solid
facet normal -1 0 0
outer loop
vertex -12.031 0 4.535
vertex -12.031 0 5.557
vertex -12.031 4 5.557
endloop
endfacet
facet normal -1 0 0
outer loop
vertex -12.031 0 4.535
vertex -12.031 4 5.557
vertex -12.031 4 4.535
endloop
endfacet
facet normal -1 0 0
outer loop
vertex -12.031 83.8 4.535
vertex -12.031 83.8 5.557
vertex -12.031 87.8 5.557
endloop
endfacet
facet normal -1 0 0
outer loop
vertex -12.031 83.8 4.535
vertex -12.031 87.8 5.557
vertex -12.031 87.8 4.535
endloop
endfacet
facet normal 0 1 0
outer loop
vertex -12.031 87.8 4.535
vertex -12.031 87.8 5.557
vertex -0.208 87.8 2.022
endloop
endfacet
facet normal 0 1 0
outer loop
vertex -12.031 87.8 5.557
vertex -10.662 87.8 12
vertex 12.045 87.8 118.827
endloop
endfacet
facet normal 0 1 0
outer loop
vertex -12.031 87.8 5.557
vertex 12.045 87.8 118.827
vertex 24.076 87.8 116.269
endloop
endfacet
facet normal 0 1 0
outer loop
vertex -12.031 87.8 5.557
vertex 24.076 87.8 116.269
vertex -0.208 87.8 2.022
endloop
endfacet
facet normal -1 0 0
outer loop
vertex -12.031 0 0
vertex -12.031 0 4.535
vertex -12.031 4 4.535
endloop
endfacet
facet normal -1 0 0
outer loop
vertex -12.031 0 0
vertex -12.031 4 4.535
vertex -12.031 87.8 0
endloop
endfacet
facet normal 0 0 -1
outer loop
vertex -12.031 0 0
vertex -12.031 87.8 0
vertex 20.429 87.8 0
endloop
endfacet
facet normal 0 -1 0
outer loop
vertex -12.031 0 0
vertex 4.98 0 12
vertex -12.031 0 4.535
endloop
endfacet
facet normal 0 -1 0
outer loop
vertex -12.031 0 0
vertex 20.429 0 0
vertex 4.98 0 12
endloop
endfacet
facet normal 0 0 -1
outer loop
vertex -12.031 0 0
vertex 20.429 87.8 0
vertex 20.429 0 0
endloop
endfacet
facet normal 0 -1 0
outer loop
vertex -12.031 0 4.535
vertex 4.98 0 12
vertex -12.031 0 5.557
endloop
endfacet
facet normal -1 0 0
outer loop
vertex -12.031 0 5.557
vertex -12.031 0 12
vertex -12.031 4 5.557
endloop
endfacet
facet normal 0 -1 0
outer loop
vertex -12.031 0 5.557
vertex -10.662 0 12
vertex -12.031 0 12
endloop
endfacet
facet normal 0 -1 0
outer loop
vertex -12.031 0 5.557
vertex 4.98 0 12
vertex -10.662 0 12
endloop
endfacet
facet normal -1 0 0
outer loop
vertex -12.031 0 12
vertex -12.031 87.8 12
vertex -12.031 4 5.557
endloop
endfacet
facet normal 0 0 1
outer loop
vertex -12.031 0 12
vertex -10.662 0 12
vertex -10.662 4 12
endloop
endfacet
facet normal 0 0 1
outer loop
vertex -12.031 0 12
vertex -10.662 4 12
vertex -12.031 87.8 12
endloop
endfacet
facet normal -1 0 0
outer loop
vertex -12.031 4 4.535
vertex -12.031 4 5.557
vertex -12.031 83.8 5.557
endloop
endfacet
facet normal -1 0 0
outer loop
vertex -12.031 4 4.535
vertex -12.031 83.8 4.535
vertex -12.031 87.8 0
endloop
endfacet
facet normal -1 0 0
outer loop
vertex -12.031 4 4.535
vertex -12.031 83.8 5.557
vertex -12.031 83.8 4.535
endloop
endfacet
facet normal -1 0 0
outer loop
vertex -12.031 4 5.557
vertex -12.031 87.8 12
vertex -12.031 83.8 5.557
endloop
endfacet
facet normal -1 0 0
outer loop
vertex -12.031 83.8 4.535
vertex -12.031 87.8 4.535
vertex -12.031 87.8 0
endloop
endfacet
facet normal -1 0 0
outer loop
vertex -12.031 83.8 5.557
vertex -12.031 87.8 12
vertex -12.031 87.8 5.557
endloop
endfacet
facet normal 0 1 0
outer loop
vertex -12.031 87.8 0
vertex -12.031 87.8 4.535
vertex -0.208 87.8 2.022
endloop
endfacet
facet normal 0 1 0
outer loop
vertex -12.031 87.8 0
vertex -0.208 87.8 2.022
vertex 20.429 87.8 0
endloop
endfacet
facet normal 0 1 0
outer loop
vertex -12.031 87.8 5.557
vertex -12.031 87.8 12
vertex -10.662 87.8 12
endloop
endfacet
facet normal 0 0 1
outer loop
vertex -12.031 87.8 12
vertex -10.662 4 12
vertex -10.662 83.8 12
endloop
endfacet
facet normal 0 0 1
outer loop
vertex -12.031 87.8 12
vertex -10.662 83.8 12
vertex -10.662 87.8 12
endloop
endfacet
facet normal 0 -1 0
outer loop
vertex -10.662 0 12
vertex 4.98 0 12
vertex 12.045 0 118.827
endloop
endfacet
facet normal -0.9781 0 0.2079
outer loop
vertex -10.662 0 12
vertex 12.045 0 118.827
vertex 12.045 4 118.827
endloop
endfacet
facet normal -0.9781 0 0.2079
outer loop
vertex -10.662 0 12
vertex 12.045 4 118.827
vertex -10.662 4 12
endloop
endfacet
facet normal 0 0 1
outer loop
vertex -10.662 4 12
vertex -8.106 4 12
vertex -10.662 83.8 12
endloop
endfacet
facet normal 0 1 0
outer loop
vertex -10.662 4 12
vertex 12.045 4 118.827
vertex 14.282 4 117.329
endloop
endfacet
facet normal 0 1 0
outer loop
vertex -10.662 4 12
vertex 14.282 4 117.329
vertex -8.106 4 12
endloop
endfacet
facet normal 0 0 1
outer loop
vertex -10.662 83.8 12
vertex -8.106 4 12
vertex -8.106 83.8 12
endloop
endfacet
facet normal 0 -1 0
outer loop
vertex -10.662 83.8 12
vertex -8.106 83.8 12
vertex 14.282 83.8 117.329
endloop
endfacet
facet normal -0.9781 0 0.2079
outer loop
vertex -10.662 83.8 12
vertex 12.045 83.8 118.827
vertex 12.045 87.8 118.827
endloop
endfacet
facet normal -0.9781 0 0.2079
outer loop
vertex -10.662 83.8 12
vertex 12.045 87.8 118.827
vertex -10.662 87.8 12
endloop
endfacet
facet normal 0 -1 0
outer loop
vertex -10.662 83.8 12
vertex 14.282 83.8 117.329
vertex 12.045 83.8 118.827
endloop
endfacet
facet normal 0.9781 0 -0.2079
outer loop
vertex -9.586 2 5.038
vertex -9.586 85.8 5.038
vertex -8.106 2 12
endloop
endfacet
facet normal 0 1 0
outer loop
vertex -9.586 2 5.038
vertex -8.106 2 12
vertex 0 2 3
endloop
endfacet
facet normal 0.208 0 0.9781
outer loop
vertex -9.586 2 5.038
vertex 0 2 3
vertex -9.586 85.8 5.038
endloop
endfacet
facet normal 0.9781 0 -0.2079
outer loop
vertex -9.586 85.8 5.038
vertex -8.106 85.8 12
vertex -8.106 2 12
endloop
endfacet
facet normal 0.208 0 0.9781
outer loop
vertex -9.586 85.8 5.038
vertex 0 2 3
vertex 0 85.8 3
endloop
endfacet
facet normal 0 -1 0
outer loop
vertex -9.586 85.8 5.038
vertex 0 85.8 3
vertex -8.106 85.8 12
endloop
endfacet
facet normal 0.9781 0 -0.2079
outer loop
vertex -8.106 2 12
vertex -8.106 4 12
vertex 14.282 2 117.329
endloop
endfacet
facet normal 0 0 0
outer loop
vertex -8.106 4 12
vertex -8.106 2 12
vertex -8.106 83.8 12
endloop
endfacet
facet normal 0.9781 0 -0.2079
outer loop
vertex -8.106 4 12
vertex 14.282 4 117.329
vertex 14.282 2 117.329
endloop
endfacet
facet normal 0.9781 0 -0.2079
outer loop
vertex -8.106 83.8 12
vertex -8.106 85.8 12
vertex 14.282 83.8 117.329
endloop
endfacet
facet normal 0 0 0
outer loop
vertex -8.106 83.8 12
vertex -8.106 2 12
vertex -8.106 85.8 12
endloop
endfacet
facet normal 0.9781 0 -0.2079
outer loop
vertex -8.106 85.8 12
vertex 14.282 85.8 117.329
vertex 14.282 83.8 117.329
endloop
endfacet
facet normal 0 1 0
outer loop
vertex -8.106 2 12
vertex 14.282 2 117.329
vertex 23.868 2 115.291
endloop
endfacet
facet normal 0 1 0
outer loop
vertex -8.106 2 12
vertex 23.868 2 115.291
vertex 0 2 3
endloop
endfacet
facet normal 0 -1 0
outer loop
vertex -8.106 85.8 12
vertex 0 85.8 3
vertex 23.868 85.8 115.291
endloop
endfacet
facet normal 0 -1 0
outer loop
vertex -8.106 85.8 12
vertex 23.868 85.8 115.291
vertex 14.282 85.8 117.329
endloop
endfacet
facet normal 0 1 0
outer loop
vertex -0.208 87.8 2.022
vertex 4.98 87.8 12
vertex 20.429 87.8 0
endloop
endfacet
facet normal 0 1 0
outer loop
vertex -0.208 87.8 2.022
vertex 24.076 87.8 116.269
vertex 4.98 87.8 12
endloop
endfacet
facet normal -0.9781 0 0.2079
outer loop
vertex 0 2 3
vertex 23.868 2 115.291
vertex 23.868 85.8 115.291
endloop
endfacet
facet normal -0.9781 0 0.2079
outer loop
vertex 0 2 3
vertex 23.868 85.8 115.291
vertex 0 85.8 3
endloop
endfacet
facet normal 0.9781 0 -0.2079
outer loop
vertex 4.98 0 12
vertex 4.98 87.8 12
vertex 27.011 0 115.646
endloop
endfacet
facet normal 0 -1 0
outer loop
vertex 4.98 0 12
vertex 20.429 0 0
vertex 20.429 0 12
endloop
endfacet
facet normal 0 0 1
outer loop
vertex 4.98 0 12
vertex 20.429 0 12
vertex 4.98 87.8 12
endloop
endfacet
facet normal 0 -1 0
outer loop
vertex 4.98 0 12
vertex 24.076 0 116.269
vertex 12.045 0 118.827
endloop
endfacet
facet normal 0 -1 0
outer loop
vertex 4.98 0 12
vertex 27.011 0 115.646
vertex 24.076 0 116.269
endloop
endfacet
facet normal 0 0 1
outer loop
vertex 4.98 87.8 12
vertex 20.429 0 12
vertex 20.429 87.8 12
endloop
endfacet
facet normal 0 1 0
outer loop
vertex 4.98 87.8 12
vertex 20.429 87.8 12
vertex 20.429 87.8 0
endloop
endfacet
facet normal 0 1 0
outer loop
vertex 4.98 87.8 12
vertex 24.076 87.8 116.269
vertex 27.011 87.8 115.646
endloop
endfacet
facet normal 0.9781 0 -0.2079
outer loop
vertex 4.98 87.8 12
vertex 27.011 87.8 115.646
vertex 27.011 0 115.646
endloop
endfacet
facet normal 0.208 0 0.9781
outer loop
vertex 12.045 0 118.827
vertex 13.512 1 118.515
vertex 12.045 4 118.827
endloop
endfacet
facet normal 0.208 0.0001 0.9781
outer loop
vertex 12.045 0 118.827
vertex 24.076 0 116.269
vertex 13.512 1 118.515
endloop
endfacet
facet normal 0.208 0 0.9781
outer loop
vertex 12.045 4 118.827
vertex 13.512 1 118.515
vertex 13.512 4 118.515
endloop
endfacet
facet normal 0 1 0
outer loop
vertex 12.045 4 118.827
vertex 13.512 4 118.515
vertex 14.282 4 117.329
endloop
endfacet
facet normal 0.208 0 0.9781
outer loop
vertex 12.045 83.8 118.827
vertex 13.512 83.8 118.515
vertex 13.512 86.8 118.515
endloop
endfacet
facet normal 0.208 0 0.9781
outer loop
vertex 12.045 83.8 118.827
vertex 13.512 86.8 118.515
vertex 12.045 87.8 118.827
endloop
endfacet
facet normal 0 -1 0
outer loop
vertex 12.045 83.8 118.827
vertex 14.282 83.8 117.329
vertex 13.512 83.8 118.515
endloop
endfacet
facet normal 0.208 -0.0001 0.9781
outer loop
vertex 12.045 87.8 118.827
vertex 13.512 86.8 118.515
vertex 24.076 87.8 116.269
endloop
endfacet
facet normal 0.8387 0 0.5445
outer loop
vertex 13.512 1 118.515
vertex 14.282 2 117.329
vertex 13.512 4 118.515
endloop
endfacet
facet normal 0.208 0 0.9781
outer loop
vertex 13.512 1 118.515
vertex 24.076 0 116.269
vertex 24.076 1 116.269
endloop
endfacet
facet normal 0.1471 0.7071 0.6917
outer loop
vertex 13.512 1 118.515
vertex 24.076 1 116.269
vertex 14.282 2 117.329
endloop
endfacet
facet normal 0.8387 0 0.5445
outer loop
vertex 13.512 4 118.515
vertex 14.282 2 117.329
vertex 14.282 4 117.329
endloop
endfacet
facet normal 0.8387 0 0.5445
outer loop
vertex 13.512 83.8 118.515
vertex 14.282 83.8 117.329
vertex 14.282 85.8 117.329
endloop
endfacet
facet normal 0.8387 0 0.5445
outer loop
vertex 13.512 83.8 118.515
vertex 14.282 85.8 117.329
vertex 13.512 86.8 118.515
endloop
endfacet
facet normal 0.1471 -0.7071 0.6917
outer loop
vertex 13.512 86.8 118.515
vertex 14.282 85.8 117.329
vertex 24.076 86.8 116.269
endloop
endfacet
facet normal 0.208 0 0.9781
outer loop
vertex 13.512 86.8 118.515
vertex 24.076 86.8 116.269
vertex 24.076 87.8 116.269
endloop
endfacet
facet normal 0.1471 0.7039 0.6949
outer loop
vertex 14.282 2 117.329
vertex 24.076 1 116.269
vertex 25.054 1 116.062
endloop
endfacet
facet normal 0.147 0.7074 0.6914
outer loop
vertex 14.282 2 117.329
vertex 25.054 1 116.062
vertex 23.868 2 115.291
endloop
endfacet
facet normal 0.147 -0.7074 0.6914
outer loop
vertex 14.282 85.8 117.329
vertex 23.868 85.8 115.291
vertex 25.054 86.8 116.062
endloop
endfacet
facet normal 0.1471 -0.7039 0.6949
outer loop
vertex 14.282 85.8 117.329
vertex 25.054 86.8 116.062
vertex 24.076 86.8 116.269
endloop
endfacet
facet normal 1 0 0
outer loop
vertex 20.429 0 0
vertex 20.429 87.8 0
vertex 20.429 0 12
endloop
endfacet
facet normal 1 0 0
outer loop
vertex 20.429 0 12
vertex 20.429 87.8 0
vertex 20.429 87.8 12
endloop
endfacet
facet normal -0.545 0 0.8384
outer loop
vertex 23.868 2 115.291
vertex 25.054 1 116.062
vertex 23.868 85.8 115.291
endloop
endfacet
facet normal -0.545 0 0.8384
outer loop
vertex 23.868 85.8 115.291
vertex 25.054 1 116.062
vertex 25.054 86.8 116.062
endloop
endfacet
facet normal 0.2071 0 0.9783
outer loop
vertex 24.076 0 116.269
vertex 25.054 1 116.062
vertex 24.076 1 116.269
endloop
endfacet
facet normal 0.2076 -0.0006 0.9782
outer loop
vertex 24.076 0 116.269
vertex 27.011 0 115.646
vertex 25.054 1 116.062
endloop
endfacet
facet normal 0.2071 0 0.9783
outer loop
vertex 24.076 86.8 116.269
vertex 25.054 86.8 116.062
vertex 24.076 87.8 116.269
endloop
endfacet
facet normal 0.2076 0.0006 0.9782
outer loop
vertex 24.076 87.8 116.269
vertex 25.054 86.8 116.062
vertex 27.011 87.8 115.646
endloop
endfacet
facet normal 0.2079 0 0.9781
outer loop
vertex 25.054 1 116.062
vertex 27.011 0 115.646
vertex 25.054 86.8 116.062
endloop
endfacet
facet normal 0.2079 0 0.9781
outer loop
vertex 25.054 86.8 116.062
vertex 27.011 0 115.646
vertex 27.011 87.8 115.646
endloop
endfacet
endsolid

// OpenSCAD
// bgs-stand-01.scad
// Suporte de mesa pra UMA slab graduada BECKETT (BGS), inclinada pra trás.
// UMA peça só, ABERTA EM CIMA, imprime sem suporte.
//
// COMO SE USA: a slab desce POR CIMA, entre os dois trilhos, e escorrega até
// o fundo do canal. Pra tirar, pinça a faixa de cima da slab que fica acima
// dos trilhos (grip mm) e puxa pra cima. Não há tampa nem trava.
//
// O QUE SEGURA A SLAB (sem tampa):
//   - atrás: o PAINEL. A inclinação de 12° joga o peso da slab contra ele;
//     o centro de massa da slab fica 17.8mm atrás da aresta de baixo/frente,
//     então ela não tomba pra frente nem sem aba nenhuma;
//   - na frente: a ABA dos trilhos, que avança sobre as bordas laterais da
//     face da slab ao longo de toda a altura do trilho (seguro extra contra
//     esbarrão);
//   - dos lados: as paredes dos trilhos;
//   - embaixo: o piso do canal e o LÁBIO frontal da base.
//   Pra cima só a gravidade segura — de propósito, é por onde ela sai.
//
// MEDIDA REAL: slab Beckett remedida pelo usuário em 2026-10-13:
// 82.8 x 130.3 x 8.8 mm (antes: 82.5 x 130.2 x 8.5, paquímetro 2026-08-11).
// Não é estimativa nem catálogo. Pra outra marca (PSA, CGC), medir de novo e
// mexer só em slab_w/slab_h/slab_t — a peça inteira é derivada deles.
//
// DE ONDE VEIO: ../terceiros/display-stand-for-psa-cgc-slab/my-psa-slab.3mf
// (Functional3D, MakerWorld, Standard Digital File License) — arquivo de
// terceiro, sem fonte. Dele veio só o CONCEITO, medido na malha: painel
// inclinado 11.9°, canal na base, canal de slab de 81.0mm. Geometria nova.
//
// Exports canônicos (caminhos ABSOLUTOS; nesta máquina Windows o binário é
// "C:/Program Files/OpenSCAD/openscad.com"; no Linux, flatpak run org.openscad.OpenSCAD):
//   openscad -o <abs>/stl/bgs-stand-01-stand.stl -D 'part="stand"' <abs>/bgs-stand-01.scad
//   openscad -o <abs>/3mf/bgs-stand-01.3mf       -D 'part="stand"' <abs>/bgs-stand-01.scad
// O job de impressão é a própria peça, em pé (base na mesa), sem suporte.

/* [Peça a renderizar] */
part = "stand"; // "stand" | "check" (suporte + slab fantasma)

/* [Slab - medida REAL do usuário, 2026-10-13 (antes 82.5x130.2x8.5 de 2026-08-11)] */
slab_w = 82.8;  // mm, largura
slab_h = 130.3; // mm, altura
slab_t = 8.8;   // mm, espessura

/* [Folgas] */
fit_w = 0.5; // mm por lado, na largura (deslize longo: padrão 0.5/lado do repo)
fit_t = 0.5; // mm por lado, na espessura (idem)
fit_h = 0.5; // mm de sobra no comprimento, no fundo do canal
mouth_ch = 1; // mm, chanfro de entrada na boca do canal (topo dos trilhos e do painel)

/* [Postura] */
lean = 12; // graus de inclinação pra trás (o de referência tinha 11.9)

/* [Painel e trilhos] */
panel_t  = 3;   // mm, espessura do painel de trás
wall     = 2;   // mm, espessura da parede lateral do trilho
rail_lip = 2;   // mm, quanto a aba do trilho avança pra dentro do vão (por lado)
lip_t    = 2.5; // mm, espessura da aba do trilho e do lábio frontal da base
grip     = 15;  // mm do canal (L) que ficam acima dos trilhos e do painel; com a
                // slab assentada no piso sobram slab_livre = 14.5mm dela pra pinçar
rail_sink = 1;  // mm que o pé dos trilhos afunda na base (só fusão, não muda o vão)

/* [Base] */
floor_z   = 3;  // mm, material sólido abaixo do canal
lip_h     = 9;  // mm, altura do lábio frontal acima do piso do canal
base_back = 18; // mm, quanto a base avança atrás do pé do painel (é o que
                // impede o conjunto de cair pra trás — o centro de massa fica
                // atrás do painel por causa da inclinação)

/* [Qualidade] */
$fn = 48;

// ---------------------------------------------------------------------
// Derivados
// ---------------------------------------------------------------------
slot_t  = slab_t + 2 * fit_t; // vão pra espessura da slab
slot_w  = slab_w + 2 * fit_w; // vão pra largura da slab
outer_w = slot_w + 2 * wall;  // largura externa
L       = slab_h + fit_h;     // comprimento útil do canal, ao longo da slab

rail_d       = slot_t + lip_t;  // quanto o trilho avança à frente do painel
top_du       = L - grip;        // trilhos e painel terminam aqui (ao longo da slab)
lip_top      = floor_z + lip_h; // topo do lábio frontal da base

// Referencial da slab -> XZ do mundo.
// du = ao longo da slab (pra cima), dn = pra frente (saindo da face do painel).
// A origem (du=0, dn=0) é o canto de baixo/de trás do vão.
function pt(du, dn) = [ du * sin(lean) - dn * cos(lean),
                        floor_z + du * cos(lean) + dn * sin(lean) ];
// x da linha de dn constante, na altura z
function x_at_z(z, dn) = ((z - floor_z - dn * sin(lean)) / cos(lean)) * sin(lean)
                         - dn * cos(lean);

// A frente da base fica alinhada com o ponto mais avançado do trilho.
lip_front_x  = -rail_d * cos(lean);
base_back_x  = x_at_z(0, -panel_t) + base_back;
total_h      = pt(top_du, slot_t + lip_t)[1];   // ponto mais alto: frente do trilho no topo
base_depth   = base_back_x - lip_front_x;
env_back_x   = pt(top_du, -panel_t)[0];
env_depth    = max(base_back_x, env_back_x) - lip_front_x;
face_visivel = slot_w - 2 * rail_lip;
lip_sobre_slab = wall + rail_lip - (wall + fit_w); // aba cobrindo a borda da slab, por lado
// Slab ASSENTADA: apoiada no piso (du=0) e deitada contra o painel (dn=0..slab_t),
// que é onde a gravidade e a inclinação deixam ela.
slab_livre   = slab_h - top_du;                    // mm de slab acima dos trilhos, pra pinçar
slab_cg_du   = slab_h / 2;                         // centro da slab ao longo do canal
// recuo horizontal do CG da slab atrás da aresta de baixo/frente dela (pivô de tombar pra frente)
cg_atras_pivo = pt(slab_cg_du, slab_t / 2)[0] - pt(0, slab_t)[0];
montado_h    = pt(slab_h, slab_t)[1];              // altura do conjunto: canto de cima/frente da slab
// quanto o lábio da base cobre da parte de baixo da face da slab, medido ao longo da slab
labio_cobre  = (lip_top - floor_z - slab_t * sin(lean)) / cos(lean);

assert(grip > 0 && grip < slab_h / 2, "grip tem que deixar a maior parte da slab nos trilhos");
assert(top_du > slab_cg_du, "o centro da slab precisa ficar abaixo do topo dos trilhos");
assert(lip_sobre_slab > 0, "a aba tem que cobrir a borda da slab");

echo(str("bgs-stand-01 SUPORTE: envelope ", env_depth, " x ", outer_w, " x ", total_h,
         " mm | base na mesa ", base_depth, " mm de profundidade"));
echo(str("  slab ", slab_w, " x ", slab_h, " x ", slab_t,
         " -> vao ", slot_w, " x ", L, " x ", slot_t, " | folga/lado ", fit_w, "/", fit_t));
echo(str("  trilhos/painel ate ", top_du, " mm ao longo da slab; ", slab_livre,
         " mm da slab livres acima pra pinçar | curso de insercao ", top_du, " mm"));
echo(str("  montado com slab: ", montado_h, " mm de altura | labio da base cobre ", labio_cobre,
         " mm da parte de baixo da face"));
echo(str("  aba cobre ", lip_sobre_slab, " mm de cada borda | face visivel ", face_visivel,
         " de ", slab_w, " mm | CG da slab ", cg_atras_pivo, " mm atras do pivo frontal"));

// ---------------------------------------------------------------------
// Suporte
// ---------------------------------------------------------------------
module stand() {
    difference() {
        // a intersecao apara o que o pe afundado dos trilhos passaria da frente da base
        intersection() {
            union() {
                // corpo: base + painel, em toda a largura
                xz_extrude(outer_w) polygon(body_profile());
                // dois trilhos em C, um em cada borda (o da direita espelhado)
                rail(0);
                rail(outer_w, true);
            }
            translate([lip_front_x, -1, 0]) cube([500, outer_w + 2, 500]);
        }
        mouth_chamfer();
    }
}

// Silhueta lateral do corpo (base + painel). O vão da slab NÃO faz parte dela
// — é o recorte entre o lábio frontal e a face do painel; quem devolve as
// paredes desse canal são os trilhos.
function body_profile() = [
    [lip_front_x, 0],                        // frente, na mesa
    [lip_front_x, lip_top],                  // sobe a face do lábio
    [x_at_z(lip_top, slot_t), lip_top],      // topo do lábio
    pt(0, slot_t),                           // desce a face frontal do canal
    pt(0, 0),                                // piso do canal (inclinado, casa com a base da slab)
    pt(top_du, 0),                           // sobe a face frontal do painel
    pt(top_du, -panel_t),                    // topo do painel
    [x_at_z(lip_top, -panel_t), lip_top],    // desce a face de trás do painel
    [base_back_x, lip_top],                  // topo da base, atrás do painel
    [base_back_x, 0]                         // face de trás da base, na mesa
];

// Trilho em C numa borda: parede lateral + aba que avança sobre a face da
// slab. Tudo parede vertical: a cada camada a seção é a de baixo deslocada
// 0.04mm pela inclinação, então não existe balanço nenhum.
module rail(y0, flip = false) {
    in_slab_frame()
        translate([0, y0, 0]) {
            if (flip) mirror([0, 1, 0]) rail_body();
            else rail_body();
        }
}

module rail_body() {
    // começa rail_sink abaixo do piso do canal pra fundir de verdade com a base
    // (com o pé exatamente no plano do piso sobrava uma lasca de 1e-5mm)
    translate([-rail_d, 0, -rail_sink]) cube([rail_d, wall, top_du + rail_sink]);           // parede lateral
    translate([-rail_d, 0, -rail_sink]) cube([lip_t, wall + rail_lip, top_du + rail_sink]); // aba sobre a face da slab
}

// Chanfro de entrada na boca: tronco de pirâmide que abre o vão em mouth_ch
// pra cada lado no topo (aba, paredes e painel), guiando a slab pra dentro.
module mouth_chamfer() {
    in_slab_frame()
        hull() {
            translate([-slot_t, wall, top_du - mouth_ch])
                cube([slot_t, slot_w, 0.01]);
            translate([-slot_t - mouth_ch, wall - mouth_ch, top_du])
                cube([slot_t + 2 * mouth_ch, slot_w + 2 * mouth_ch, 1]);
        }
}

// ---------------------------------------------------------------------
// Comuns
// ---------------------------------------------------------------------
// Coloca os filhos no referencial da slab: X = pra TRÁS, Y = largura,
// Z = ao longo da slab. A origem fica no canto de baixo/de trás do vão.
module in_slab_frame() {
    translate([0, 0, floor_z])
        rotate([0, lean, 0])
            children();
}

// A slab, só pra conferência visual de encaixe (part="check"), assentada.
module slab_ghost() {
    in_slab_frame()
        translate([-slab_t, wall + fit_w, 0])  // assentada: no piso, contra o painel
            cube([slab_t, slab_w, slab_h]);
}

// Extrusão de um perfil do plano XZ ao longo de Y (0..h).
module xz_extrude(h) {
    translate([0, h, 0])
        rotate([90, 0, 0])
            linear_extrude(h)
                children();
}

// ---------------------------------------------------------------------
// Render
// ---------------------------------------------------------------------
if (part == "check") {
    stand();
    %slab_ghost();
} else {
    stand();
}
